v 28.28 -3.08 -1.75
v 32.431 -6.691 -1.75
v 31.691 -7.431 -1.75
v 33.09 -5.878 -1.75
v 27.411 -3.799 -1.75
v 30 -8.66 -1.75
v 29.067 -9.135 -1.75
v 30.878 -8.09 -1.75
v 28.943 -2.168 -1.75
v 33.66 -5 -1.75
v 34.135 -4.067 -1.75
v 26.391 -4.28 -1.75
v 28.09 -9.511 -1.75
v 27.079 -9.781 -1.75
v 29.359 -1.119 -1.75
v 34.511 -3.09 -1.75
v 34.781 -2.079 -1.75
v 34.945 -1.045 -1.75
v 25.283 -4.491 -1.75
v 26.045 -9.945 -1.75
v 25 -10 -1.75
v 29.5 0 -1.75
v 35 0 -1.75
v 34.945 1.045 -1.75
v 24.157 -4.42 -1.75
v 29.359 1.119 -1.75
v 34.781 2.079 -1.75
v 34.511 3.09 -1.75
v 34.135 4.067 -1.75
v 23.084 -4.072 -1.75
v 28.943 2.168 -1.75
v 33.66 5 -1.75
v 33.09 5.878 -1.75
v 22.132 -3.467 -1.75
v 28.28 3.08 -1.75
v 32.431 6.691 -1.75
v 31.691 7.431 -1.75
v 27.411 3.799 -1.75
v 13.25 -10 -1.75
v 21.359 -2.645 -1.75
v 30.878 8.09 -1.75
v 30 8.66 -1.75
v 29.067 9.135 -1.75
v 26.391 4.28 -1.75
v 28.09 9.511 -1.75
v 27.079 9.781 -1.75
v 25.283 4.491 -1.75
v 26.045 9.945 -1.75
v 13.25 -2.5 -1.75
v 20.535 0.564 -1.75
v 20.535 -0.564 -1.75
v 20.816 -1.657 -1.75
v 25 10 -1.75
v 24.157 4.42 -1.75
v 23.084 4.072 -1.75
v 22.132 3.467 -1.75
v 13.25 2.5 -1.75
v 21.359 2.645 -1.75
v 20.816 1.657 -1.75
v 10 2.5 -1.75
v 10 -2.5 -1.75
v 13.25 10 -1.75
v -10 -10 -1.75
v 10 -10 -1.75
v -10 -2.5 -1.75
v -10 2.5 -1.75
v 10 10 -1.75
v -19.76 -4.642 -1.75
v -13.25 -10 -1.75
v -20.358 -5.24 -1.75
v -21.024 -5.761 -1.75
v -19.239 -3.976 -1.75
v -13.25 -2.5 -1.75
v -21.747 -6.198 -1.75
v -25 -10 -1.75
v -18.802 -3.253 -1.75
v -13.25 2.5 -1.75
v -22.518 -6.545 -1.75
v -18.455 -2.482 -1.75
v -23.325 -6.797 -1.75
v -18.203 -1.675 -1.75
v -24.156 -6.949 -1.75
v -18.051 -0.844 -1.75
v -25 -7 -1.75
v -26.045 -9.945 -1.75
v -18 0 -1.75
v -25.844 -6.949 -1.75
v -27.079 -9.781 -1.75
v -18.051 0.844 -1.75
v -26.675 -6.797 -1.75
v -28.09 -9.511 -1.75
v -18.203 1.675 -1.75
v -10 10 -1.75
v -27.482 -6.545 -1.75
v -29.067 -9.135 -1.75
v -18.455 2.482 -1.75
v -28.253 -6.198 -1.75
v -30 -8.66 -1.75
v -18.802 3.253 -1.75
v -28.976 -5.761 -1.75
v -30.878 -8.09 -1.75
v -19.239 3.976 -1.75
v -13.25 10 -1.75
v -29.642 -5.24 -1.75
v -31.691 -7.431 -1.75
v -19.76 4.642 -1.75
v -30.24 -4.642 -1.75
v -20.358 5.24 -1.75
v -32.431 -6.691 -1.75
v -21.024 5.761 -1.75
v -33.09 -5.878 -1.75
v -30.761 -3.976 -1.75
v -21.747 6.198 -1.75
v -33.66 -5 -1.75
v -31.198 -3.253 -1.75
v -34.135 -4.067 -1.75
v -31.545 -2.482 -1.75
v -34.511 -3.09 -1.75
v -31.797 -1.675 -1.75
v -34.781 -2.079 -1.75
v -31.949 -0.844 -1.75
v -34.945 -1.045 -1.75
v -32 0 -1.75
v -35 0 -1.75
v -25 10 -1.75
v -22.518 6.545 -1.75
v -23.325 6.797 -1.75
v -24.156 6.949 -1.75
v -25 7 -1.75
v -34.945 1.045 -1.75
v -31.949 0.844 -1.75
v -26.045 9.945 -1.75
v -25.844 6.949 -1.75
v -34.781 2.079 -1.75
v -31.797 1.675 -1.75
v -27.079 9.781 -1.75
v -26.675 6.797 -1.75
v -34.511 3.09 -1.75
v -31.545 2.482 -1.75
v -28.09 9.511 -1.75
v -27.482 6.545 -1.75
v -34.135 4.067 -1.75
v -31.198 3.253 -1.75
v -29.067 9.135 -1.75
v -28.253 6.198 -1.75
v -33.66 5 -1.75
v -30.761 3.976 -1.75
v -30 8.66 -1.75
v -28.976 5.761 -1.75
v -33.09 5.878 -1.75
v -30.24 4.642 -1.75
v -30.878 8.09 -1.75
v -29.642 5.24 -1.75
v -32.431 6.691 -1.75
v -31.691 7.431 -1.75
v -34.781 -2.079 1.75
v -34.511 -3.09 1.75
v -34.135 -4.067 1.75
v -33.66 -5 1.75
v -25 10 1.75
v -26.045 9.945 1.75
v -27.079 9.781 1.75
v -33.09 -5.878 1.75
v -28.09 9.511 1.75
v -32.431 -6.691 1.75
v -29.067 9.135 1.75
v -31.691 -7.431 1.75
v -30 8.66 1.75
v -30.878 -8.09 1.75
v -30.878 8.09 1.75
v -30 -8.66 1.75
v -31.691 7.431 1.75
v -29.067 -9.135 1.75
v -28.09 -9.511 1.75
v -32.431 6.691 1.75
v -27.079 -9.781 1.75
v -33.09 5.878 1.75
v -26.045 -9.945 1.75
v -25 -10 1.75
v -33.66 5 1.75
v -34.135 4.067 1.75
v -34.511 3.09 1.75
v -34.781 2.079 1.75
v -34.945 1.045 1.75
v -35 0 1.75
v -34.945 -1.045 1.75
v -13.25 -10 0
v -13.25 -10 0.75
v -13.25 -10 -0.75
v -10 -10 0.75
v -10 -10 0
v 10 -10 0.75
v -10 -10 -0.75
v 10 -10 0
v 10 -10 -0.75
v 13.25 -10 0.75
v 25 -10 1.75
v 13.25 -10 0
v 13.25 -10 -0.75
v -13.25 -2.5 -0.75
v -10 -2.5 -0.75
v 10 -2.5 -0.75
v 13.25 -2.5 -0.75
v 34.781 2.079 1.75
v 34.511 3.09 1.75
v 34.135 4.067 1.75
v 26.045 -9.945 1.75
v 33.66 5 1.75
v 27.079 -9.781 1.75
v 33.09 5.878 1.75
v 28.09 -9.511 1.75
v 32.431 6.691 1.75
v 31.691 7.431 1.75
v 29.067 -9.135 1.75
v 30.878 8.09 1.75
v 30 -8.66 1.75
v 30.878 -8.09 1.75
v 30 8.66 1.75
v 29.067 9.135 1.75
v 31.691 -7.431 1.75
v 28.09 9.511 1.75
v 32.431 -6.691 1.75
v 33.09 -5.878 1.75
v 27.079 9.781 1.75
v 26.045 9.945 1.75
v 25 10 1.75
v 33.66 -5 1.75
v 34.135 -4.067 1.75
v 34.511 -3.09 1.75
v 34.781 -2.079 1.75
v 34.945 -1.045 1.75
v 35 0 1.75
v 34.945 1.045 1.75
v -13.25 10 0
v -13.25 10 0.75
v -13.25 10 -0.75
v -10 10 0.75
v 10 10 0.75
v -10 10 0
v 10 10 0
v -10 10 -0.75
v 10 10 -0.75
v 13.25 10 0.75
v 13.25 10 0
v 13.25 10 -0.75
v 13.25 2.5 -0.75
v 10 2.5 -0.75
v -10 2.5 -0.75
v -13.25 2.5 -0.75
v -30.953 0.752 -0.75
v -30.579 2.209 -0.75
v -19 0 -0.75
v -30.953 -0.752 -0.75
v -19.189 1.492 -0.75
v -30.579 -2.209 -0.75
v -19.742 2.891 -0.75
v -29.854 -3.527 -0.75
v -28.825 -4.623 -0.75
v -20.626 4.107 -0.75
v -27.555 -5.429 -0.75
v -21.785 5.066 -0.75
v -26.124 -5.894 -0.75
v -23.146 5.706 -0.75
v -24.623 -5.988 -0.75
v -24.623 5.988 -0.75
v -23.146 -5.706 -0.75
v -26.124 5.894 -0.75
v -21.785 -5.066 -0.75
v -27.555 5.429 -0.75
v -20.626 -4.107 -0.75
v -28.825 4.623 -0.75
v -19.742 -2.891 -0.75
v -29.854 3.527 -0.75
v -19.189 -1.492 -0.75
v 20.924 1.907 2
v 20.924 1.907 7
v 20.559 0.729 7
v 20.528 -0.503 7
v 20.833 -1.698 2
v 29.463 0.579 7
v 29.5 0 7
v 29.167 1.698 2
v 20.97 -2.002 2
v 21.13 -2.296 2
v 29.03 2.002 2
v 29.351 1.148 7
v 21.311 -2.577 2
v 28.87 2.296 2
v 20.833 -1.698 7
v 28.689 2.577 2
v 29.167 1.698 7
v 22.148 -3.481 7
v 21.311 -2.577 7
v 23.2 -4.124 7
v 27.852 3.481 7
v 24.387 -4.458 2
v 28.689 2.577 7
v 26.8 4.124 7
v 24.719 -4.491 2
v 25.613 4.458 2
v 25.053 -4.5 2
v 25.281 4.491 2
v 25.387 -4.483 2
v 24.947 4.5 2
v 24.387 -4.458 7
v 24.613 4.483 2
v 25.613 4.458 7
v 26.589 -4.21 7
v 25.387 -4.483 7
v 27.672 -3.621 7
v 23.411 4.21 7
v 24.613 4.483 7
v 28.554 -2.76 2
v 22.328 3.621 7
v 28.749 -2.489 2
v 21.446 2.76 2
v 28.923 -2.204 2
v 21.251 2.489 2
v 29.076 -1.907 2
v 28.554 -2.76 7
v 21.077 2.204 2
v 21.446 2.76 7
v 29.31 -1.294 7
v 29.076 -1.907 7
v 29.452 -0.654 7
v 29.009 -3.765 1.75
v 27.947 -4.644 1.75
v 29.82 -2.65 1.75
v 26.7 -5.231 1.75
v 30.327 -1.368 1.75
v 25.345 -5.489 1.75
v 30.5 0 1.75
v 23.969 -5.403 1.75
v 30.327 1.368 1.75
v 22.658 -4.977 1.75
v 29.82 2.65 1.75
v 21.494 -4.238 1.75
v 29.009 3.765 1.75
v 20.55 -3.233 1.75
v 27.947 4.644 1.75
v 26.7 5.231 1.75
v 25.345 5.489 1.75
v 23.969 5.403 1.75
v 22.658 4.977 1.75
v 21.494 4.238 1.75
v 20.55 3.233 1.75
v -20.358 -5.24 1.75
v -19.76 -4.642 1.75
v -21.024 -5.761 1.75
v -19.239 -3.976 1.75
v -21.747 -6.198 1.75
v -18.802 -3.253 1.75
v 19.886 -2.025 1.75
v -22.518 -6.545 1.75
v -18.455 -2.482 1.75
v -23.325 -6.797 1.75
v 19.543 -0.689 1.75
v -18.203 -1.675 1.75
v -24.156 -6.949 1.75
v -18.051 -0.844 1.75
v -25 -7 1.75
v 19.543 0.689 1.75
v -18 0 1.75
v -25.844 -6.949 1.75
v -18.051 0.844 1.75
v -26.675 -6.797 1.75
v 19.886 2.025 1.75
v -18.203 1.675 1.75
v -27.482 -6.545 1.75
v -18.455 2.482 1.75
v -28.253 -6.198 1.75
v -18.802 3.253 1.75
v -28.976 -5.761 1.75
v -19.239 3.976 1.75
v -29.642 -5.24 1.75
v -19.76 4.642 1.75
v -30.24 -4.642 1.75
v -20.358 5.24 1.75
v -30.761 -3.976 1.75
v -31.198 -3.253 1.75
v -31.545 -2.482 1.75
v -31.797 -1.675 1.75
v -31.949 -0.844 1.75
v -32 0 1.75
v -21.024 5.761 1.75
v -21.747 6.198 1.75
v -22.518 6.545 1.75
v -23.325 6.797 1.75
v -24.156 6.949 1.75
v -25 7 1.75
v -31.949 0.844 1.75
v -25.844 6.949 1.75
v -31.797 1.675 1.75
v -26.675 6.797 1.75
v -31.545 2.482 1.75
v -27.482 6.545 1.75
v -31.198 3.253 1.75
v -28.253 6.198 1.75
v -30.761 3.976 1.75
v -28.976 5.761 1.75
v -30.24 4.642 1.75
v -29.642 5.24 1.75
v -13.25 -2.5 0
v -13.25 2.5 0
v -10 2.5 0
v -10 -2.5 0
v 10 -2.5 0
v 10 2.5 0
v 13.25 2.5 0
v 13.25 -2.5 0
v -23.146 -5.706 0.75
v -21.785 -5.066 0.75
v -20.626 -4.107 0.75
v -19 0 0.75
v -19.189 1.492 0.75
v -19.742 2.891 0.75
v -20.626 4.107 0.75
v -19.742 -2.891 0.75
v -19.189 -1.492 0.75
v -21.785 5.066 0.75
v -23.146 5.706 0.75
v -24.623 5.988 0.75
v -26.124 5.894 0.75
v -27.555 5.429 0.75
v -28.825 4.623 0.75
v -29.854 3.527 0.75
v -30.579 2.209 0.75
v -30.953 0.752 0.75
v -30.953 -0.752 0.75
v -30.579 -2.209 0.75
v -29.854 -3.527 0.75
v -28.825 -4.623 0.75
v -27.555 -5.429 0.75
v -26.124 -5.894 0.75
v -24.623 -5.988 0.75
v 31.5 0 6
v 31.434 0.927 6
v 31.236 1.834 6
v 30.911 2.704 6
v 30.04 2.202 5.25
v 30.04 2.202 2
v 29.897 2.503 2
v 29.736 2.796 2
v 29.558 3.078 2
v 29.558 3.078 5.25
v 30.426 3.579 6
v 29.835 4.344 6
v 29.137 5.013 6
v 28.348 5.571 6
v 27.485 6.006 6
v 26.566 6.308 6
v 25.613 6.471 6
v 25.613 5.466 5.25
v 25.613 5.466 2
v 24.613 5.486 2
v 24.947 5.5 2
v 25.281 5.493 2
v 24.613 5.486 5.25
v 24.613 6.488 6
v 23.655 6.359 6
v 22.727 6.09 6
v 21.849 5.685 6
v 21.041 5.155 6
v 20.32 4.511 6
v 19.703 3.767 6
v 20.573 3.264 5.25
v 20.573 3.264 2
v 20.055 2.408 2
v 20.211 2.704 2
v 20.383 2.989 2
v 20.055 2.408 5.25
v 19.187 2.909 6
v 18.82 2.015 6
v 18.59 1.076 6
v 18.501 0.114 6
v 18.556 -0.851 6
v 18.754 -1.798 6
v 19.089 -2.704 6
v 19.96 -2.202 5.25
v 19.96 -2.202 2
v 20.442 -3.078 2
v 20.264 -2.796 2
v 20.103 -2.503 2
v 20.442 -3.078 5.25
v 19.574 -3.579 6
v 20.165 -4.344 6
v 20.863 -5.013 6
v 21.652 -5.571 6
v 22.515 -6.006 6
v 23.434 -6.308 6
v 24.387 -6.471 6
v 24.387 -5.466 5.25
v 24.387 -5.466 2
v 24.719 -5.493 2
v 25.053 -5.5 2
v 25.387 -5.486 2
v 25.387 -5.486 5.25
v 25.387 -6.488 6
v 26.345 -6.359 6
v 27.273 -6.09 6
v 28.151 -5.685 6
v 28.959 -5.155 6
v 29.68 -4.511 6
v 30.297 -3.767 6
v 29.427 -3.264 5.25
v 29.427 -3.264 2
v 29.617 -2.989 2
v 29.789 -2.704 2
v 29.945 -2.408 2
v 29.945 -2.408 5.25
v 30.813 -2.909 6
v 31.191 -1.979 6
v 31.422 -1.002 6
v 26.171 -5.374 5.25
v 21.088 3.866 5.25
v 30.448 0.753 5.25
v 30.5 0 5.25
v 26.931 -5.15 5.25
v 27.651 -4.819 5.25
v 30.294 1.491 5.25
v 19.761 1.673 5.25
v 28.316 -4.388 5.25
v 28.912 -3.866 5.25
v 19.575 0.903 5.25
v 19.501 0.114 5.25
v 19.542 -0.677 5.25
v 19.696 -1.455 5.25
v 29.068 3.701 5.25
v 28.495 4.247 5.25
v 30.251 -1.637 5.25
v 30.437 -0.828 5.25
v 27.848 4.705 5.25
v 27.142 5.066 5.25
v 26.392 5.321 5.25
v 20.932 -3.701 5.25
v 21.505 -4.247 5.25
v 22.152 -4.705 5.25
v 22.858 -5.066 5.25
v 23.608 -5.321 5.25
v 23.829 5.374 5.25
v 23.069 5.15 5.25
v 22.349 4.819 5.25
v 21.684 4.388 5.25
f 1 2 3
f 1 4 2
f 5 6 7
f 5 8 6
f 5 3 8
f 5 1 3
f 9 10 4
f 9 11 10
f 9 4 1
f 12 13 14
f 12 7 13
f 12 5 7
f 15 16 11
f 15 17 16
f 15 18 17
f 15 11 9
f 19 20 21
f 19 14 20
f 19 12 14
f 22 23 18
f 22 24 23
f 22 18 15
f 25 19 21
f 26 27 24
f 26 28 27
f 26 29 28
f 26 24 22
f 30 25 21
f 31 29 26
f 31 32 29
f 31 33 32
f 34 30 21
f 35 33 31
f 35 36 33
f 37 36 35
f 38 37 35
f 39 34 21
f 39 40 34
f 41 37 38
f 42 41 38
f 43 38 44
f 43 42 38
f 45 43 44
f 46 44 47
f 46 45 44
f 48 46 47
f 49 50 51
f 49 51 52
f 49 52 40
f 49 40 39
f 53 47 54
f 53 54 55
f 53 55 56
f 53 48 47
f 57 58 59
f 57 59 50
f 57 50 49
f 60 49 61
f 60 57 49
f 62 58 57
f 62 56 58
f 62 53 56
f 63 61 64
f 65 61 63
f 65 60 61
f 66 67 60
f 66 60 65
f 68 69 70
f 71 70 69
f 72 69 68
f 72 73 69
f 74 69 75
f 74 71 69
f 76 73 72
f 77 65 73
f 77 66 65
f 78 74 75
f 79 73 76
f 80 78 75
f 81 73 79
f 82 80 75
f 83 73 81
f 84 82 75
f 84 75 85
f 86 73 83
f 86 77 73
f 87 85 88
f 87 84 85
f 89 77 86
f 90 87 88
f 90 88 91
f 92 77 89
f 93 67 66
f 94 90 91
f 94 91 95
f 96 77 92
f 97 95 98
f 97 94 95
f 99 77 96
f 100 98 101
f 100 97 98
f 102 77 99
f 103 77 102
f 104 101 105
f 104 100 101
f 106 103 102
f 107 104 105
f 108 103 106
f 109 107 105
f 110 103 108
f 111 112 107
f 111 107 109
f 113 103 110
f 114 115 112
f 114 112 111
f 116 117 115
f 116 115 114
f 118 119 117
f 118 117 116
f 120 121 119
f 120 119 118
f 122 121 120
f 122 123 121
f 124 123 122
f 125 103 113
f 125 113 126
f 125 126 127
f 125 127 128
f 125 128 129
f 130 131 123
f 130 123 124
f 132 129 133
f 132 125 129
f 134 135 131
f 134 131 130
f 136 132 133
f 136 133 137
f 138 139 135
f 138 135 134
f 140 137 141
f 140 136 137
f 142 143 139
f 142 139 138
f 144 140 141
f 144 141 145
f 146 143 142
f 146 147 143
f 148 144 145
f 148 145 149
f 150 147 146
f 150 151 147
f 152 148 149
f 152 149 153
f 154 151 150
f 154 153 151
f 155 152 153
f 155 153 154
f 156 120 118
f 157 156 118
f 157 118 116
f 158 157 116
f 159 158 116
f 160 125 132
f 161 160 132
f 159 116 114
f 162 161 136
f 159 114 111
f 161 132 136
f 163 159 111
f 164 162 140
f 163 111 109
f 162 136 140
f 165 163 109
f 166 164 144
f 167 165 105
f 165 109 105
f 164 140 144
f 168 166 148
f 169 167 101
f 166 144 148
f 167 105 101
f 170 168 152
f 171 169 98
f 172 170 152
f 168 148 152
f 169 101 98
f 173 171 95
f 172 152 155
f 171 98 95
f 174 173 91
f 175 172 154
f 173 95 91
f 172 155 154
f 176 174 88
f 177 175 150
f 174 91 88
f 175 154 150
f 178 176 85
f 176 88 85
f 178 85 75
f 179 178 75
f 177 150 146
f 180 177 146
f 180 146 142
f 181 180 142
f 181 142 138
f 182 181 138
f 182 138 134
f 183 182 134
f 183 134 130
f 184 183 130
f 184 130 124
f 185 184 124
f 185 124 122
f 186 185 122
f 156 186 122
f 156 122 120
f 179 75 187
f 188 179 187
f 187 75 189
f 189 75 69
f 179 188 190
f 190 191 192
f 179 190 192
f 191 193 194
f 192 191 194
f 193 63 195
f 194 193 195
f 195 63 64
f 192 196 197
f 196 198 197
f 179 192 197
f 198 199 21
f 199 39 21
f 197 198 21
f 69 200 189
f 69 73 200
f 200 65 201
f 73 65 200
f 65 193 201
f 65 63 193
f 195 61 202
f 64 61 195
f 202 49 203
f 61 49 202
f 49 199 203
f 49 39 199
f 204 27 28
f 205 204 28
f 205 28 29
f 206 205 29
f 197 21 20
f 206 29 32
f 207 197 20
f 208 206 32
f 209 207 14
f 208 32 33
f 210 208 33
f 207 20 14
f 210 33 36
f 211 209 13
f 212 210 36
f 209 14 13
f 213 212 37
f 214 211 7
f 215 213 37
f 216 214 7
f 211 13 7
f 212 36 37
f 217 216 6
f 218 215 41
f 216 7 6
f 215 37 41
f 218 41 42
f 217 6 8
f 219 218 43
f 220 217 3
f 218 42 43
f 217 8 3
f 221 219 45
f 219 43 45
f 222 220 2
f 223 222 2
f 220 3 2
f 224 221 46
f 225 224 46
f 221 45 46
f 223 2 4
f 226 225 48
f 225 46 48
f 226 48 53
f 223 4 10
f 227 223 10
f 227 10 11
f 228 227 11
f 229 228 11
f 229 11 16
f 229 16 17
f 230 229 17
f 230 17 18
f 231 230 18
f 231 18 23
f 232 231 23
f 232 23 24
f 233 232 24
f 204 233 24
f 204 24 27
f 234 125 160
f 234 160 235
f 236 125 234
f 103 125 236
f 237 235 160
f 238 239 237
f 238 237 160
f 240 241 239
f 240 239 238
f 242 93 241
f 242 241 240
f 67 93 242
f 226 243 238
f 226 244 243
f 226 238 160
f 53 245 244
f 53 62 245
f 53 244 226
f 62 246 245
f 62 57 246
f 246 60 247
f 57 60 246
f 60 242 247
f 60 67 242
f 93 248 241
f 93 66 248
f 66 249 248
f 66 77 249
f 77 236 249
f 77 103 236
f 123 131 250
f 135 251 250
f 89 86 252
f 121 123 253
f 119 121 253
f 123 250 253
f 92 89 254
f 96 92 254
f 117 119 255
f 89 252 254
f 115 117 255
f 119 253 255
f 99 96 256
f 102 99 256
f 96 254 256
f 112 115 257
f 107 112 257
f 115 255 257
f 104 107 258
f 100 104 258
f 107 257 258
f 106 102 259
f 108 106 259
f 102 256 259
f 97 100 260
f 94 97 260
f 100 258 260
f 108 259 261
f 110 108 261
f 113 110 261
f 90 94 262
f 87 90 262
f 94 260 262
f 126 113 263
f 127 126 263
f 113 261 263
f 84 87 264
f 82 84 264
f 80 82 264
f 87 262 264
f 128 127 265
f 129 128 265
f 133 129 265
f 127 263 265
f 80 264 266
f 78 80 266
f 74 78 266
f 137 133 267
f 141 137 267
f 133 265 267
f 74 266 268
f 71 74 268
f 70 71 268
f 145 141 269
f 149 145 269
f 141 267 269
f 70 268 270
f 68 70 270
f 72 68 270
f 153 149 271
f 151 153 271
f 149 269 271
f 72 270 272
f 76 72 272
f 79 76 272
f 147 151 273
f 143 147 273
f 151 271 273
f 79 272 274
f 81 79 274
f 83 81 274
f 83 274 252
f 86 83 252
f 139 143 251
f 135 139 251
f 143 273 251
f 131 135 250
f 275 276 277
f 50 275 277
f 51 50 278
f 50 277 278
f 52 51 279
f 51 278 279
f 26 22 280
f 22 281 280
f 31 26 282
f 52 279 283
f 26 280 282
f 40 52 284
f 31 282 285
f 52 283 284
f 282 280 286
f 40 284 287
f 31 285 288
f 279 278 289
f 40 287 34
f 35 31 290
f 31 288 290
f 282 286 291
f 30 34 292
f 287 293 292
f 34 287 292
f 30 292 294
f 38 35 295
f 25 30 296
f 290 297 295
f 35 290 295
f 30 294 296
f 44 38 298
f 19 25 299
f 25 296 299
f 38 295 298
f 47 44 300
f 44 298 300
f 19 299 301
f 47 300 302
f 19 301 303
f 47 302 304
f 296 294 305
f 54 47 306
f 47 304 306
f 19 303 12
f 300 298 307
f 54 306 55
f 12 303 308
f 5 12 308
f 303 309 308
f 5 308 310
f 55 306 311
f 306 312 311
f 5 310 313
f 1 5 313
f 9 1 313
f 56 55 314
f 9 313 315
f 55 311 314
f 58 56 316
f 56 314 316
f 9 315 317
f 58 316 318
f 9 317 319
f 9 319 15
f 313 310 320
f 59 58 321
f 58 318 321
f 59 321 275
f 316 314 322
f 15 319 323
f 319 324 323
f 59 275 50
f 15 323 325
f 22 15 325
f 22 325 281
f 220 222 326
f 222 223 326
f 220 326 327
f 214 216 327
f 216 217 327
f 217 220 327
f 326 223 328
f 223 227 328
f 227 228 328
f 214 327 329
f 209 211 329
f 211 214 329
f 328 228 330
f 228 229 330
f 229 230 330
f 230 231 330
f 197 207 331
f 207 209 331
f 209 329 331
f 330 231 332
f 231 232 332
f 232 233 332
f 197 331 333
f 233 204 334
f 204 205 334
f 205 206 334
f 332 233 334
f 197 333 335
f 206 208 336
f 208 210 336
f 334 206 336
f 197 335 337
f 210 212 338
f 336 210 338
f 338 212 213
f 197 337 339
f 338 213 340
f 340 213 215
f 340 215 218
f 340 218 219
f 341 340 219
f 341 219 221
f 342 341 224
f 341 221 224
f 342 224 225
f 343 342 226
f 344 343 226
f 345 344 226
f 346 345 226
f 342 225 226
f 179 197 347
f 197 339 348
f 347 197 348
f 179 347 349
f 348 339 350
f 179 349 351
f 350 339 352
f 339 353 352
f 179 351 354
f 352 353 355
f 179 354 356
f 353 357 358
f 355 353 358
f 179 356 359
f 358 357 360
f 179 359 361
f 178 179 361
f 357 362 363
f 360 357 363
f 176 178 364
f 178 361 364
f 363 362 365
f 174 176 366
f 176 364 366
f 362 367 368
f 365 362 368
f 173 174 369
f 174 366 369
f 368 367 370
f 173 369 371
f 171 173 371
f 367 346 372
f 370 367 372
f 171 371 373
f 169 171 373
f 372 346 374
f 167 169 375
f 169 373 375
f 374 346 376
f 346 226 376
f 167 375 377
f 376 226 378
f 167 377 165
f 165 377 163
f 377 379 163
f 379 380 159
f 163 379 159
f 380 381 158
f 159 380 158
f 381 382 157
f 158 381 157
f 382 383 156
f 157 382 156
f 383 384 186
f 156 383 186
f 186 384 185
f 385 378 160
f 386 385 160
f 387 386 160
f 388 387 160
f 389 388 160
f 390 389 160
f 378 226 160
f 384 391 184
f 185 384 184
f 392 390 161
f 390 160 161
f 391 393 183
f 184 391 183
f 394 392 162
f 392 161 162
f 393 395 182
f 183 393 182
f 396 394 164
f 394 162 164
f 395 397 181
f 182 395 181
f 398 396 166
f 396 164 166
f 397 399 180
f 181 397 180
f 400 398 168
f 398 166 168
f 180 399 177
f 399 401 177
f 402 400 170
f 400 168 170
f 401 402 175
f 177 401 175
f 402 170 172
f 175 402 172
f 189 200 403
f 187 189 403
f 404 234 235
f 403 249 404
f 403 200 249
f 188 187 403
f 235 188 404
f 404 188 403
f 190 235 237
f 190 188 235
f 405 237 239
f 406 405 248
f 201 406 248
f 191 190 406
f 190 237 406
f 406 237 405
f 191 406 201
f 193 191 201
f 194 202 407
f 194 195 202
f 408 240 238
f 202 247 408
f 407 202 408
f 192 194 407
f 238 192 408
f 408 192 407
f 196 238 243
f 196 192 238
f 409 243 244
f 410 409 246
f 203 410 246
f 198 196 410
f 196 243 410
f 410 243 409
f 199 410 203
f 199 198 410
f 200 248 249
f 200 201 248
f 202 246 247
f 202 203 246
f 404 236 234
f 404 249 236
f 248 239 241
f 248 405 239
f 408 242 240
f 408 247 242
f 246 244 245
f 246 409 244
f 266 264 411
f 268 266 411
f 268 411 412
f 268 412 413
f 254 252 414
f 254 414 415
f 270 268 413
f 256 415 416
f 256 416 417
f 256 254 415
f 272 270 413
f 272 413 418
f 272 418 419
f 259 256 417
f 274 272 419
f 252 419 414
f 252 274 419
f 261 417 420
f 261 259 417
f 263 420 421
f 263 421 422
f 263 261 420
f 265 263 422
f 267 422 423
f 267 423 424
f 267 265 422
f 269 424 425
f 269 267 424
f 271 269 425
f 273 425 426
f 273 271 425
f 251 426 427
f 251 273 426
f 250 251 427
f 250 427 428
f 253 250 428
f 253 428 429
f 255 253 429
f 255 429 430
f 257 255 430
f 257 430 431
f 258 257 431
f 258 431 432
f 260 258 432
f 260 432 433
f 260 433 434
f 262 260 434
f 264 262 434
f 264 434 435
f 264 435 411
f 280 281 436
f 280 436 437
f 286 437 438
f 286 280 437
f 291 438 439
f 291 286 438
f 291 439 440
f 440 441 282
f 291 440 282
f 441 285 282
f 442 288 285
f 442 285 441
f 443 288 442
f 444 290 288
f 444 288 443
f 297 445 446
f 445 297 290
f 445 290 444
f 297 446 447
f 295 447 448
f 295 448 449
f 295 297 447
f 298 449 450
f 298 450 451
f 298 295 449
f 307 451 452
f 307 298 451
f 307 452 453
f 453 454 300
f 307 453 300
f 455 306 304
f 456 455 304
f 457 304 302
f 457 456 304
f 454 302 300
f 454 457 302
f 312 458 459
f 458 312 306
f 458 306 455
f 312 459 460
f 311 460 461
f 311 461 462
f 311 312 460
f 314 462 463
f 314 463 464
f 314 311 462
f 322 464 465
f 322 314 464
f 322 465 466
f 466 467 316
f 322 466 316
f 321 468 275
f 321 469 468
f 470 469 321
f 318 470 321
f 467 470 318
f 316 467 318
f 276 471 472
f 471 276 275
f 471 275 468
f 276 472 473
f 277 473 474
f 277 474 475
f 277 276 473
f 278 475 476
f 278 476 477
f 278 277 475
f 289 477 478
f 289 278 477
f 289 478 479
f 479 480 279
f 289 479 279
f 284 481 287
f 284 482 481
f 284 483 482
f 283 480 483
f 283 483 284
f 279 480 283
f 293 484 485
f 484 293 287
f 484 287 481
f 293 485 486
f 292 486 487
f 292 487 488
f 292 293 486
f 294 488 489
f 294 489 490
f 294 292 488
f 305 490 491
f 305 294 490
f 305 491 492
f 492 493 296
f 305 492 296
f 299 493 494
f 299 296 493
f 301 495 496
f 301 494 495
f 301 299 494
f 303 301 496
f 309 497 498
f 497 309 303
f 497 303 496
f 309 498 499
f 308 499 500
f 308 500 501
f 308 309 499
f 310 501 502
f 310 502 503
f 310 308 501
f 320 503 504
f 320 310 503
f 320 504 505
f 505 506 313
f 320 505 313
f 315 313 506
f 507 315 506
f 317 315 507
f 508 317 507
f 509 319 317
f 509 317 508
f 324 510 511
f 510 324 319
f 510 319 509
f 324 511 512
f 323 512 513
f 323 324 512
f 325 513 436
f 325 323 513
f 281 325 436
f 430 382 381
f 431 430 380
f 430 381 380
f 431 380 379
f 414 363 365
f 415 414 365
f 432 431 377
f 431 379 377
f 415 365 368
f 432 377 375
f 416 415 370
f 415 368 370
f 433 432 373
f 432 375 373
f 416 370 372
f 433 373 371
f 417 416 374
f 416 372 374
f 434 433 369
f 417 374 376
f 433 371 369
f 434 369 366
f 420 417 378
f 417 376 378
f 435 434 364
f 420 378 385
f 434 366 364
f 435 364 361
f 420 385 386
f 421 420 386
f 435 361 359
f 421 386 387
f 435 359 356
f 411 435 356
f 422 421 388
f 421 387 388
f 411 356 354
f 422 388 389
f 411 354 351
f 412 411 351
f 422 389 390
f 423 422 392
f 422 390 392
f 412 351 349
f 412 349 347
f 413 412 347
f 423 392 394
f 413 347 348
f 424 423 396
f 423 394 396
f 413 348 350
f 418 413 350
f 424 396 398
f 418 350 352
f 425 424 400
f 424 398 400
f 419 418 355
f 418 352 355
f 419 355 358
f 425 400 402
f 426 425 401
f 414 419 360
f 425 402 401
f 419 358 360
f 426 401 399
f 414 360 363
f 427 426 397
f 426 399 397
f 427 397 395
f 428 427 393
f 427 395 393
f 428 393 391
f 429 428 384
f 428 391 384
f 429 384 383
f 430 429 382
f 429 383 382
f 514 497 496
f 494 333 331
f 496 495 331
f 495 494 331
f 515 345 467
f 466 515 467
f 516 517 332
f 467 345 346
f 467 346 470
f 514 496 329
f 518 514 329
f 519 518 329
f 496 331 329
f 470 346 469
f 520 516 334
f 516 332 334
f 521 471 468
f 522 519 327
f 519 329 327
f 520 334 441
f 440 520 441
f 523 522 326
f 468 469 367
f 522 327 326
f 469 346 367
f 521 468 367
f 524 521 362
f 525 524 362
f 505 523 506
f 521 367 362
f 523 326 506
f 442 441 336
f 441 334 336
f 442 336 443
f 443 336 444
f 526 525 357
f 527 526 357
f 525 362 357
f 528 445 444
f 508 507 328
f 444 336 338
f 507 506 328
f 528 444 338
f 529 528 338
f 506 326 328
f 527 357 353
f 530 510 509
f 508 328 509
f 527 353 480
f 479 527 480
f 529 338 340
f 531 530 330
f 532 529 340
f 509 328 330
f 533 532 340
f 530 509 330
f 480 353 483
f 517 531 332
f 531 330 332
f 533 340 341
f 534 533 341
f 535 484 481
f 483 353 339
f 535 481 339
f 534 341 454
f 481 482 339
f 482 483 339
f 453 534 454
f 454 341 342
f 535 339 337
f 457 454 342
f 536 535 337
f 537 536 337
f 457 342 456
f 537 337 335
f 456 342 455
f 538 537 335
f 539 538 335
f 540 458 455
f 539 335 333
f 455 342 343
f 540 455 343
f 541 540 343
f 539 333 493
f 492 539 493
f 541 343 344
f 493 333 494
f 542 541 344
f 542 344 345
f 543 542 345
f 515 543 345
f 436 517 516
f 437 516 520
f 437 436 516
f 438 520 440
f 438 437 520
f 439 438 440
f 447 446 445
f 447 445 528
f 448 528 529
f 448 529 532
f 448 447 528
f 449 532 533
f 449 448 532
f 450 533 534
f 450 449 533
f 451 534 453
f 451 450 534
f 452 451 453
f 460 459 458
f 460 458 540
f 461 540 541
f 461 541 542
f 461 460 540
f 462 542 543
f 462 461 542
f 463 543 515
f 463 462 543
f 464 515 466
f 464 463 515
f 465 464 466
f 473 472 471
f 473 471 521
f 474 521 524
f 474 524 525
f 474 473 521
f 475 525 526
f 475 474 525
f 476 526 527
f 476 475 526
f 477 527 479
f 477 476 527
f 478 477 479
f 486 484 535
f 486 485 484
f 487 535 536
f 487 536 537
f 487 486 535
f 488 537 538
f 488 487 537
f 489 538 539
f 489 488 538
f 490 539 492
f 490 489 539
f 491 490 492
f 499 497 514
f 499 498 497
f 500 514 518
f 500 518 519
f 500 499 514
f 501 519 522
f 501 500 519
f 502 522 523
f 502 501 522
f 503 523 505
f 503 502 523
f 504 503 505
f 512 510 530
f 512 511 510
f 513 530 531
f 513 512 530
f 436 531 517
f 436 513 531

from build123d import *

# Parameters (mm, degrees)
SKETCH007_W     = 1
SKETCH007_H     = 15
PAD002_DEPTH    = 10
ARRAY_COUNT     = 6
SKETCH005_R     = 6.5
SKETCH004_R     = 4.5
SKETCH003_R     = 5.5
SKETCH002_R     = 6.5
SKETCH_R        = 6
PAD_DEPTH       = 1.75
SKETCH001_R     = 5.5
PAD001_DEPTH    = 3.5
SKETCH006_R     = 4.5
POCKET_DEPTH    = 8.751
CHAMFER_SIZE    = 1
SKETCH008_W     = 3.25
SKETCH008_H     = 1.5
POCKET001_DEPTH = 20.001
SKETCH009_W     = 3.25
SKETCH009_H     = 10
POCKET002_DEPTH = 1


with BuildPart() as array:
    # Sketch007 → Pad002 (new body)
    with BuildSketch(Plane.XY.offset(2)):
        with Locations((25.113381, 7.5)):
            Rectangle(SKETCH007_W, SKETCH007_H)
    extrude(amount=PAD002_DEPTH)

    # Array: Array ×6 about axis
    array_axis = Axis((25, 0, 0), (0, 0, 1))


with BuildPart() as array_1:
    add(array.part)
    for i in range(1, ARRAY_COUNT):
        add(array.part.rotate(array_axis, i * 360 / ARRAY_COUNT))


with BuildPart() as loft001:
    # Sketch005 → Loft001 section 0
    with BuildSketch(Plane.XY.offset(6)):
        with Locations((25, 0)):
            Circle(SKETCH005_R)
    # Sketch004 → Loft001 section 1
    with BuildSketch(Plane.XY.offset(7)):
        with Locations((25, 0)):
            Circle(SKETCH004_R)
    loft(ruled=True)


with BuildPart() as loft_body:
    # Sketch003 → Loft section 0
    with BuildSketch(Plane.XY.offset(5.25)):
        with Locations((25, 0)):
            Circle(SKETCH003_R)
    # Sketch002 → Loft section 1
    with BuildSketch(Plane.XY.offset(6)):
        with Locations((25, 0)):
            Circle(SKETCH002_R)
    loft(ruled=True)


with BuildPart() as pocket002:
    # Sketch → Pad (new body, symmetric)
    with BuildSketch(Plane.XY):
        with BuildLine():
            ThreePointArc((-25, 10), (-35, 0), (-25, -10))
            Line((-25, -10), (25, -10))
            ThreePointArc((25, -10), (35, 0), (25, 10))
            Line((-25, 10), (25, 10))
        make_face()
        with Locations((-25, 0)):
            Circle(SKETCH_R, mode=Mode.SUBTRACT)
    extrude(amount=PAD_DEPTH, both=True)

    # Sketch001 → Pad001 (new body)
    with BuildSketch(Plane.XY.offset(1.75)):
        with Locations((25, 0)):
            Circle(SKETCH001_R)
    extrude(amount=PAD001_DEPTH)

    # Fusion: union Loft body
    add(loft_body.part)

    # Fusion001: union Loft001
    add(loft001.part)

    # Sketch006 → Pocket (cut, through all)
    with BuildSketch(Plane.XY.offset(7)):
        with Locations((25, 0)):
            Circle(SKETCH006_R)
    extrude(amount=-POCKET_DEPTH, mode=Mode.SUBTRACT)

    # Cut: cut Array
    add(array_1.part, mode=Mode.SUBTRACT)

    # Chamfer
    chamfer_edges = [pocket002.edges().sort_by_distance(p)[0] for p in [
        (-31, 0, 1.75),
        (-31, 0, -1.75),
    ]]
    chamfer(chamfer_edges, length=CHAMFER_SIZE)

    # Sketch008 → Pocket001 (cut, through all)
    with BuildSketch(Plane.XZ.offset(10)):
        with Locations((-11.625, 0)):
            Rectangle(SKETCH008_W, SKETCH008_H)
        with Locations((11.625, 0)):
            Rectangle(SKETCH008_W, SKETCH008_H)
    extrude(amount=-POCKET001_DEPTH, mode=Mode.SUBTRACT)

    # Sketch009 → Pocket002 (cut)
    with BuildSketch(Plane(origin=(0, 0, -1.75), x_dir=(1, 0, 0), z_dir=(0, 0, -1))):
        with Locations((-11.625, 7.5)):
            Rectangle(SKETCH009_W, SKETCH009_H)
        with Locations((-11.625, -7.5)):
            Rectangle(SKETCH009_W, SKETCH009_H)
        with Locations((11.625, 7.5)):
            Rectangle(SKETCH009_W, SKETCH009_H)
        with Locations((11.625, -7.5)):
            Rectangle(SKETCH009_W, SKETCH009_H)
    extrude(amount=-POCKET002_DEPTH, mode=Mode.SUBTRACT)


solid = pocket002.part
